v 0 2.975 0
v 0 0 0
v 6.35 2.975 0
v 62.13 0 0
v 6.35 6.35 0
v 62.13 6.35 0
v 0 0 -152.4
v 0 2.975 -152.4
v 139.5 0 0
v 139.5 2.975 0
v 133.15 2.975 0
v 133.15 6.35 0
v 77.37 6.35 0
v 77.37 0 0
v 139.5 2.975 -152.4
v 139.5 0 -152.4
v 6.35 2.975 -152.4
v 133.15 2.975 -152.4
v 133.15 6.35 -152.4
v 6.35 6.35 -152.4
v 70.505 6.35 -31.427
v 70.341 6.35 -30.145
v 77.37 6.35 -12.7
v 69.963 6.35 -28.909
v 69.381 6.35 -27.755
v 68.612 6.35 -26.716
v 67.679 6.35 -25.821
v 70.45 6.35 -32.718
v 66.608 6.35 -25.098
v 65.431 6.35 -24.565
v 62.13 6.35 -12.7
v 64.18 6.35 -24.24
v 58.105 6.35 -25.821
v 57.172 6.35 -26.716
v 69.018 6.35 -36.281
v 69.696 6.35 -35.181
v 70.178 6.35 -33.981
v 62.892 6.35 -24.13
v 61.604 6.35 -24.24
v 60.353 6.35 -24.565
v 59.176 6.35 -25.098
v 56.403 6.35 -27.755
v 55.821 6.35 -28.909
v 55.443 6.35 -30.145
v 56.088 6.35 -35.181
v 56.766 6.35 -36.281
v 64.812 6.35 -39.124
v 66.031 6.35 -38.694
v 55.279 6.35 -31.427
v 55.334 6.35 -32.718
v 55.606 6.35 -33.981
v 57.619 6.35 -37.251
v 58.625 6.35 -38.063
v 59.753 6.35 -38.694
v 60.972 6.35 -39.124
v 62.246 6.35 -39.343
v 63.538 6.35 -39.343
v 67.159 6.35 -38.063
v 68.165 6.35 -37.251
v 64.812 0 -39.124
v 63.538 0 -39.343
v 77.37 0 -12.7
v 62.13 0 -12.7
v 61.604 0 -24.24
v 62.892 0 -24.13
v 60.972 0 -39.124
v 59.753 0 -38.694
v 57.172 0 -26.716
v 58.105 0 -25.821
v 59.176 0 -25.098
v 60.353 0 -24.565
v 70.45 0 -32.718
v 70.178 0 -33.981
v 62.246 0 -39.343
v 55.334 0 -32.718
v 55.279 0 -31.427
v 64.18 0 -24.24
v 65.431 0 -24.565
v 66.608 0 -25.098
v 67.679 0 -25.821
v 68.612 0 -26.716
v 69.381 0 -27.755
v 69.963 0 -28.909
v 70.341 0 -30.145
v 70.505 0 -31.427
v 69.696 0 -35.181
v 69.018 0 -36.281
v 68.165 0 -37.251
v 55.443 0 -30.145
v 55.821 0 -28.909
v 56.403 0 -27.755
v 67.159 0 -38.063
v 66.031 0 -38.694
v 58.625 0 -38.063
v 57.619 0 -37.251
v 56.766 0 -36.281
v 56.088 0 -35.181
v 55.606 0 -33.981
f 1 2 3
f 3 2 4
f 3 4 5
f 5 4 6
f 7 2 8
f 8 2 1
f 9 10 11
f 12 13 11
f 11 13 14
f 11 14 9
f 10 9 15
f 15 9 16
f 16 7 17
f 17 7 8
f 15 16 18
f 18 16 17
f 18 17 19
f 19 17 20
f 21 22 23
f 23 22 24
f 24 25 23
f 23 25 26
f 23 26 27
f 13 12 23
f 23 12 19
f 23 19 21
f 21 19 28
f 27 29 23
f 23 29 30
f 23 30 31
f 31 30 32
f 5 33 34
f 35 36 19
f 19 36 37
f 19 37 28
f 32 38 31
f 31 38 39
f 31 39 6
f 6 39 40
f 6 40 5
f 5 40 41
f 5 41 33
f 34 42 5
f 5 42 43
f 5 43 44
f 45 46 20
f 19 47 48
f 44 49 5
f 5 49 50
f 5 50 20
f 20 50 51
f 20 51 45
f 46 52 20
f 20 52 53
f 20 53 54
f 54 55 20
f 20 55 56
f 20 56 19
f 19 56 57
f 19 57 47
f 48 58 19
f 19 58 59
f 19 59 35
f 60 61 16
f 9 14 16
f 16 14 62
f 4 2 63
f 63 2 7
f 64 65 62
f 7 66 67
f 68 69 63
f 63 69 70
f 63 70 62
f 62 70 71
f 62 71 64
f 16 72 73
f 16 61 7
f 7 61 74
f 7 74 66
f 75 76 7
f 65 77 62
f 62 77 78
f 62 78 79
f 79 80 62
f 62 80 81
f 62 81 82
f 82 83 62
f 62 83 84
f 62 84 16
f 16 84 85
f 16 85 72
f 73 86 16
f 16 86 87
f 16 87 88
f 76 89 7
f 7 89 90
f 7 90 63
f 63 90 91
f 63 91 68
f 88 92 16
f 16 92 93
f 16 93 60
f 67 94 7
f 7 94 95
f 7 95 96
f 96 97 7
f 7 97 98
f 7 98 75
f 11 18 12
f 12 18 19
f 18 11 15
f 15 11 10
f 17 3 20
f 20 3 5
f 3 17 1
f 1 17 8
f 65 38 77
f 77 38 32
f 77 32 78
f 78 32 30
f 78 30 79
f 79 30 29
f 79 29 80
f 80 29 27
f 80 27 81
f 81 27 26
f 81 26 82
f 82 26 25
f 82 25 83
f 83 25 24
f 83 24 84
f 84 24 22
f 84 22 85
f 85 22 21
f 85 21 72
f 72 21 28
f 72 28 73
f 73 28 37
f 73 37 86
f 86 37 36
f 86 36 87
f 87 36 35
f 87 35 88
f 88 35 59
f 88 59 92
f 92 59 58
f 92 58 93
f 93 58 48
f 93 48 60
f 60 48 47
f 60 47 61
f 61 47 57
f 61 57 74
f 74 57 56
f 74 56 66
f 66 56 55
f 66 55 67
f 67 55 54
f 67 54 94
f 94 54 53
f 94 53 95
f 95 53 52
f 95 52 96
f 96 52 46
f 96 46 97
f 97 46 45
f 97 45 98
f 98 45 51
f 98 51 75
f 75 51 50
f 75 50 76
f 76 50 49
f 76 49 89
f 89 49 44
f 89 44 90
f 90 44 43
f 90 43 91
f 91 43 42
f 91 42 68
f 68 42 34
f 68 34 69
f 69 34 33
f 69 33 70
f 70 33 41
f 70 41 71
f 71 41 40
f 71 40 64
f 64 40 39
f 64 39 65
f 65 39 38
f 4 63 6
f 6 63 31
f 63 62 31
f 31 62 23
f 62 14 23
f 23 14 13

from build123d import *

# Parameters (mm, degrees)
SKETCH1_W           = 139.5
SKETCH1_H           = 152.4
BOSS_EXTRUDE1_DEPTH = 6.35
SKETCH2_W           = 6.35
SKETCH2_H           = 152.4
CUT_EXTRUDE1_DEPTH  = 3.375
SKETCH3_R           = 7.62
SKETCH3_W           = 15.24
SKETCH3_H           = 12.7
CUT_EXTRUDE2_DEPTH  = 7.35


with BuildPart() as part:
    # Sketch1 → Boss-Extrude1 (new body)
    with BuildSketch(Plane(origin=(0, 0, 0), x_dir=(1, 0, 0), z_dir=(0, 1, 0))):
        with Locations((69.75, 76.2)):
            Rectangle(SKETCH1_W, SKETCH1_H)
    extrude(amount=BOSS_EXTRUDE1_DEPTH)

    # Sketch2 → Cut-Extrude1 (cut)
    with BuildSketch(Plane(origin=(0, 6.35, 0), x_dir=(1, 0, 0), z_dir=(0, 1, 0))):
        with Locations((3.175, 76.2)):
            Rectangle(SKETCH2_W, SKETCH2_H)
        with Locations((136.325, 76.2)):
            Rectangle(SKETCH2_W, SKETCH2_H)
    extrude(amount=-CUT_EXTRUDE1_DEPTH, mode=Mode.SUBTRACT)

    # Sketch3 → Cut-Extrude2 (cut, through all)
    with BuildSketch(Plane(origin=(0, 6.35, 0), x_dir=(1, 0, 0), z_dir=(0, 1, 0))):
        with Locations((62.892, 31.75)):
            Circle(SKETCH3_R)
        with Locations((69.75, 6.35)):
            Rectangle(SKETCH3_W, SKETCH3_H)
    extrude(amount=-CUT_EXTRUDE2_DEPTH, mode=Mode.SUBTRACT)


solid = part.part
